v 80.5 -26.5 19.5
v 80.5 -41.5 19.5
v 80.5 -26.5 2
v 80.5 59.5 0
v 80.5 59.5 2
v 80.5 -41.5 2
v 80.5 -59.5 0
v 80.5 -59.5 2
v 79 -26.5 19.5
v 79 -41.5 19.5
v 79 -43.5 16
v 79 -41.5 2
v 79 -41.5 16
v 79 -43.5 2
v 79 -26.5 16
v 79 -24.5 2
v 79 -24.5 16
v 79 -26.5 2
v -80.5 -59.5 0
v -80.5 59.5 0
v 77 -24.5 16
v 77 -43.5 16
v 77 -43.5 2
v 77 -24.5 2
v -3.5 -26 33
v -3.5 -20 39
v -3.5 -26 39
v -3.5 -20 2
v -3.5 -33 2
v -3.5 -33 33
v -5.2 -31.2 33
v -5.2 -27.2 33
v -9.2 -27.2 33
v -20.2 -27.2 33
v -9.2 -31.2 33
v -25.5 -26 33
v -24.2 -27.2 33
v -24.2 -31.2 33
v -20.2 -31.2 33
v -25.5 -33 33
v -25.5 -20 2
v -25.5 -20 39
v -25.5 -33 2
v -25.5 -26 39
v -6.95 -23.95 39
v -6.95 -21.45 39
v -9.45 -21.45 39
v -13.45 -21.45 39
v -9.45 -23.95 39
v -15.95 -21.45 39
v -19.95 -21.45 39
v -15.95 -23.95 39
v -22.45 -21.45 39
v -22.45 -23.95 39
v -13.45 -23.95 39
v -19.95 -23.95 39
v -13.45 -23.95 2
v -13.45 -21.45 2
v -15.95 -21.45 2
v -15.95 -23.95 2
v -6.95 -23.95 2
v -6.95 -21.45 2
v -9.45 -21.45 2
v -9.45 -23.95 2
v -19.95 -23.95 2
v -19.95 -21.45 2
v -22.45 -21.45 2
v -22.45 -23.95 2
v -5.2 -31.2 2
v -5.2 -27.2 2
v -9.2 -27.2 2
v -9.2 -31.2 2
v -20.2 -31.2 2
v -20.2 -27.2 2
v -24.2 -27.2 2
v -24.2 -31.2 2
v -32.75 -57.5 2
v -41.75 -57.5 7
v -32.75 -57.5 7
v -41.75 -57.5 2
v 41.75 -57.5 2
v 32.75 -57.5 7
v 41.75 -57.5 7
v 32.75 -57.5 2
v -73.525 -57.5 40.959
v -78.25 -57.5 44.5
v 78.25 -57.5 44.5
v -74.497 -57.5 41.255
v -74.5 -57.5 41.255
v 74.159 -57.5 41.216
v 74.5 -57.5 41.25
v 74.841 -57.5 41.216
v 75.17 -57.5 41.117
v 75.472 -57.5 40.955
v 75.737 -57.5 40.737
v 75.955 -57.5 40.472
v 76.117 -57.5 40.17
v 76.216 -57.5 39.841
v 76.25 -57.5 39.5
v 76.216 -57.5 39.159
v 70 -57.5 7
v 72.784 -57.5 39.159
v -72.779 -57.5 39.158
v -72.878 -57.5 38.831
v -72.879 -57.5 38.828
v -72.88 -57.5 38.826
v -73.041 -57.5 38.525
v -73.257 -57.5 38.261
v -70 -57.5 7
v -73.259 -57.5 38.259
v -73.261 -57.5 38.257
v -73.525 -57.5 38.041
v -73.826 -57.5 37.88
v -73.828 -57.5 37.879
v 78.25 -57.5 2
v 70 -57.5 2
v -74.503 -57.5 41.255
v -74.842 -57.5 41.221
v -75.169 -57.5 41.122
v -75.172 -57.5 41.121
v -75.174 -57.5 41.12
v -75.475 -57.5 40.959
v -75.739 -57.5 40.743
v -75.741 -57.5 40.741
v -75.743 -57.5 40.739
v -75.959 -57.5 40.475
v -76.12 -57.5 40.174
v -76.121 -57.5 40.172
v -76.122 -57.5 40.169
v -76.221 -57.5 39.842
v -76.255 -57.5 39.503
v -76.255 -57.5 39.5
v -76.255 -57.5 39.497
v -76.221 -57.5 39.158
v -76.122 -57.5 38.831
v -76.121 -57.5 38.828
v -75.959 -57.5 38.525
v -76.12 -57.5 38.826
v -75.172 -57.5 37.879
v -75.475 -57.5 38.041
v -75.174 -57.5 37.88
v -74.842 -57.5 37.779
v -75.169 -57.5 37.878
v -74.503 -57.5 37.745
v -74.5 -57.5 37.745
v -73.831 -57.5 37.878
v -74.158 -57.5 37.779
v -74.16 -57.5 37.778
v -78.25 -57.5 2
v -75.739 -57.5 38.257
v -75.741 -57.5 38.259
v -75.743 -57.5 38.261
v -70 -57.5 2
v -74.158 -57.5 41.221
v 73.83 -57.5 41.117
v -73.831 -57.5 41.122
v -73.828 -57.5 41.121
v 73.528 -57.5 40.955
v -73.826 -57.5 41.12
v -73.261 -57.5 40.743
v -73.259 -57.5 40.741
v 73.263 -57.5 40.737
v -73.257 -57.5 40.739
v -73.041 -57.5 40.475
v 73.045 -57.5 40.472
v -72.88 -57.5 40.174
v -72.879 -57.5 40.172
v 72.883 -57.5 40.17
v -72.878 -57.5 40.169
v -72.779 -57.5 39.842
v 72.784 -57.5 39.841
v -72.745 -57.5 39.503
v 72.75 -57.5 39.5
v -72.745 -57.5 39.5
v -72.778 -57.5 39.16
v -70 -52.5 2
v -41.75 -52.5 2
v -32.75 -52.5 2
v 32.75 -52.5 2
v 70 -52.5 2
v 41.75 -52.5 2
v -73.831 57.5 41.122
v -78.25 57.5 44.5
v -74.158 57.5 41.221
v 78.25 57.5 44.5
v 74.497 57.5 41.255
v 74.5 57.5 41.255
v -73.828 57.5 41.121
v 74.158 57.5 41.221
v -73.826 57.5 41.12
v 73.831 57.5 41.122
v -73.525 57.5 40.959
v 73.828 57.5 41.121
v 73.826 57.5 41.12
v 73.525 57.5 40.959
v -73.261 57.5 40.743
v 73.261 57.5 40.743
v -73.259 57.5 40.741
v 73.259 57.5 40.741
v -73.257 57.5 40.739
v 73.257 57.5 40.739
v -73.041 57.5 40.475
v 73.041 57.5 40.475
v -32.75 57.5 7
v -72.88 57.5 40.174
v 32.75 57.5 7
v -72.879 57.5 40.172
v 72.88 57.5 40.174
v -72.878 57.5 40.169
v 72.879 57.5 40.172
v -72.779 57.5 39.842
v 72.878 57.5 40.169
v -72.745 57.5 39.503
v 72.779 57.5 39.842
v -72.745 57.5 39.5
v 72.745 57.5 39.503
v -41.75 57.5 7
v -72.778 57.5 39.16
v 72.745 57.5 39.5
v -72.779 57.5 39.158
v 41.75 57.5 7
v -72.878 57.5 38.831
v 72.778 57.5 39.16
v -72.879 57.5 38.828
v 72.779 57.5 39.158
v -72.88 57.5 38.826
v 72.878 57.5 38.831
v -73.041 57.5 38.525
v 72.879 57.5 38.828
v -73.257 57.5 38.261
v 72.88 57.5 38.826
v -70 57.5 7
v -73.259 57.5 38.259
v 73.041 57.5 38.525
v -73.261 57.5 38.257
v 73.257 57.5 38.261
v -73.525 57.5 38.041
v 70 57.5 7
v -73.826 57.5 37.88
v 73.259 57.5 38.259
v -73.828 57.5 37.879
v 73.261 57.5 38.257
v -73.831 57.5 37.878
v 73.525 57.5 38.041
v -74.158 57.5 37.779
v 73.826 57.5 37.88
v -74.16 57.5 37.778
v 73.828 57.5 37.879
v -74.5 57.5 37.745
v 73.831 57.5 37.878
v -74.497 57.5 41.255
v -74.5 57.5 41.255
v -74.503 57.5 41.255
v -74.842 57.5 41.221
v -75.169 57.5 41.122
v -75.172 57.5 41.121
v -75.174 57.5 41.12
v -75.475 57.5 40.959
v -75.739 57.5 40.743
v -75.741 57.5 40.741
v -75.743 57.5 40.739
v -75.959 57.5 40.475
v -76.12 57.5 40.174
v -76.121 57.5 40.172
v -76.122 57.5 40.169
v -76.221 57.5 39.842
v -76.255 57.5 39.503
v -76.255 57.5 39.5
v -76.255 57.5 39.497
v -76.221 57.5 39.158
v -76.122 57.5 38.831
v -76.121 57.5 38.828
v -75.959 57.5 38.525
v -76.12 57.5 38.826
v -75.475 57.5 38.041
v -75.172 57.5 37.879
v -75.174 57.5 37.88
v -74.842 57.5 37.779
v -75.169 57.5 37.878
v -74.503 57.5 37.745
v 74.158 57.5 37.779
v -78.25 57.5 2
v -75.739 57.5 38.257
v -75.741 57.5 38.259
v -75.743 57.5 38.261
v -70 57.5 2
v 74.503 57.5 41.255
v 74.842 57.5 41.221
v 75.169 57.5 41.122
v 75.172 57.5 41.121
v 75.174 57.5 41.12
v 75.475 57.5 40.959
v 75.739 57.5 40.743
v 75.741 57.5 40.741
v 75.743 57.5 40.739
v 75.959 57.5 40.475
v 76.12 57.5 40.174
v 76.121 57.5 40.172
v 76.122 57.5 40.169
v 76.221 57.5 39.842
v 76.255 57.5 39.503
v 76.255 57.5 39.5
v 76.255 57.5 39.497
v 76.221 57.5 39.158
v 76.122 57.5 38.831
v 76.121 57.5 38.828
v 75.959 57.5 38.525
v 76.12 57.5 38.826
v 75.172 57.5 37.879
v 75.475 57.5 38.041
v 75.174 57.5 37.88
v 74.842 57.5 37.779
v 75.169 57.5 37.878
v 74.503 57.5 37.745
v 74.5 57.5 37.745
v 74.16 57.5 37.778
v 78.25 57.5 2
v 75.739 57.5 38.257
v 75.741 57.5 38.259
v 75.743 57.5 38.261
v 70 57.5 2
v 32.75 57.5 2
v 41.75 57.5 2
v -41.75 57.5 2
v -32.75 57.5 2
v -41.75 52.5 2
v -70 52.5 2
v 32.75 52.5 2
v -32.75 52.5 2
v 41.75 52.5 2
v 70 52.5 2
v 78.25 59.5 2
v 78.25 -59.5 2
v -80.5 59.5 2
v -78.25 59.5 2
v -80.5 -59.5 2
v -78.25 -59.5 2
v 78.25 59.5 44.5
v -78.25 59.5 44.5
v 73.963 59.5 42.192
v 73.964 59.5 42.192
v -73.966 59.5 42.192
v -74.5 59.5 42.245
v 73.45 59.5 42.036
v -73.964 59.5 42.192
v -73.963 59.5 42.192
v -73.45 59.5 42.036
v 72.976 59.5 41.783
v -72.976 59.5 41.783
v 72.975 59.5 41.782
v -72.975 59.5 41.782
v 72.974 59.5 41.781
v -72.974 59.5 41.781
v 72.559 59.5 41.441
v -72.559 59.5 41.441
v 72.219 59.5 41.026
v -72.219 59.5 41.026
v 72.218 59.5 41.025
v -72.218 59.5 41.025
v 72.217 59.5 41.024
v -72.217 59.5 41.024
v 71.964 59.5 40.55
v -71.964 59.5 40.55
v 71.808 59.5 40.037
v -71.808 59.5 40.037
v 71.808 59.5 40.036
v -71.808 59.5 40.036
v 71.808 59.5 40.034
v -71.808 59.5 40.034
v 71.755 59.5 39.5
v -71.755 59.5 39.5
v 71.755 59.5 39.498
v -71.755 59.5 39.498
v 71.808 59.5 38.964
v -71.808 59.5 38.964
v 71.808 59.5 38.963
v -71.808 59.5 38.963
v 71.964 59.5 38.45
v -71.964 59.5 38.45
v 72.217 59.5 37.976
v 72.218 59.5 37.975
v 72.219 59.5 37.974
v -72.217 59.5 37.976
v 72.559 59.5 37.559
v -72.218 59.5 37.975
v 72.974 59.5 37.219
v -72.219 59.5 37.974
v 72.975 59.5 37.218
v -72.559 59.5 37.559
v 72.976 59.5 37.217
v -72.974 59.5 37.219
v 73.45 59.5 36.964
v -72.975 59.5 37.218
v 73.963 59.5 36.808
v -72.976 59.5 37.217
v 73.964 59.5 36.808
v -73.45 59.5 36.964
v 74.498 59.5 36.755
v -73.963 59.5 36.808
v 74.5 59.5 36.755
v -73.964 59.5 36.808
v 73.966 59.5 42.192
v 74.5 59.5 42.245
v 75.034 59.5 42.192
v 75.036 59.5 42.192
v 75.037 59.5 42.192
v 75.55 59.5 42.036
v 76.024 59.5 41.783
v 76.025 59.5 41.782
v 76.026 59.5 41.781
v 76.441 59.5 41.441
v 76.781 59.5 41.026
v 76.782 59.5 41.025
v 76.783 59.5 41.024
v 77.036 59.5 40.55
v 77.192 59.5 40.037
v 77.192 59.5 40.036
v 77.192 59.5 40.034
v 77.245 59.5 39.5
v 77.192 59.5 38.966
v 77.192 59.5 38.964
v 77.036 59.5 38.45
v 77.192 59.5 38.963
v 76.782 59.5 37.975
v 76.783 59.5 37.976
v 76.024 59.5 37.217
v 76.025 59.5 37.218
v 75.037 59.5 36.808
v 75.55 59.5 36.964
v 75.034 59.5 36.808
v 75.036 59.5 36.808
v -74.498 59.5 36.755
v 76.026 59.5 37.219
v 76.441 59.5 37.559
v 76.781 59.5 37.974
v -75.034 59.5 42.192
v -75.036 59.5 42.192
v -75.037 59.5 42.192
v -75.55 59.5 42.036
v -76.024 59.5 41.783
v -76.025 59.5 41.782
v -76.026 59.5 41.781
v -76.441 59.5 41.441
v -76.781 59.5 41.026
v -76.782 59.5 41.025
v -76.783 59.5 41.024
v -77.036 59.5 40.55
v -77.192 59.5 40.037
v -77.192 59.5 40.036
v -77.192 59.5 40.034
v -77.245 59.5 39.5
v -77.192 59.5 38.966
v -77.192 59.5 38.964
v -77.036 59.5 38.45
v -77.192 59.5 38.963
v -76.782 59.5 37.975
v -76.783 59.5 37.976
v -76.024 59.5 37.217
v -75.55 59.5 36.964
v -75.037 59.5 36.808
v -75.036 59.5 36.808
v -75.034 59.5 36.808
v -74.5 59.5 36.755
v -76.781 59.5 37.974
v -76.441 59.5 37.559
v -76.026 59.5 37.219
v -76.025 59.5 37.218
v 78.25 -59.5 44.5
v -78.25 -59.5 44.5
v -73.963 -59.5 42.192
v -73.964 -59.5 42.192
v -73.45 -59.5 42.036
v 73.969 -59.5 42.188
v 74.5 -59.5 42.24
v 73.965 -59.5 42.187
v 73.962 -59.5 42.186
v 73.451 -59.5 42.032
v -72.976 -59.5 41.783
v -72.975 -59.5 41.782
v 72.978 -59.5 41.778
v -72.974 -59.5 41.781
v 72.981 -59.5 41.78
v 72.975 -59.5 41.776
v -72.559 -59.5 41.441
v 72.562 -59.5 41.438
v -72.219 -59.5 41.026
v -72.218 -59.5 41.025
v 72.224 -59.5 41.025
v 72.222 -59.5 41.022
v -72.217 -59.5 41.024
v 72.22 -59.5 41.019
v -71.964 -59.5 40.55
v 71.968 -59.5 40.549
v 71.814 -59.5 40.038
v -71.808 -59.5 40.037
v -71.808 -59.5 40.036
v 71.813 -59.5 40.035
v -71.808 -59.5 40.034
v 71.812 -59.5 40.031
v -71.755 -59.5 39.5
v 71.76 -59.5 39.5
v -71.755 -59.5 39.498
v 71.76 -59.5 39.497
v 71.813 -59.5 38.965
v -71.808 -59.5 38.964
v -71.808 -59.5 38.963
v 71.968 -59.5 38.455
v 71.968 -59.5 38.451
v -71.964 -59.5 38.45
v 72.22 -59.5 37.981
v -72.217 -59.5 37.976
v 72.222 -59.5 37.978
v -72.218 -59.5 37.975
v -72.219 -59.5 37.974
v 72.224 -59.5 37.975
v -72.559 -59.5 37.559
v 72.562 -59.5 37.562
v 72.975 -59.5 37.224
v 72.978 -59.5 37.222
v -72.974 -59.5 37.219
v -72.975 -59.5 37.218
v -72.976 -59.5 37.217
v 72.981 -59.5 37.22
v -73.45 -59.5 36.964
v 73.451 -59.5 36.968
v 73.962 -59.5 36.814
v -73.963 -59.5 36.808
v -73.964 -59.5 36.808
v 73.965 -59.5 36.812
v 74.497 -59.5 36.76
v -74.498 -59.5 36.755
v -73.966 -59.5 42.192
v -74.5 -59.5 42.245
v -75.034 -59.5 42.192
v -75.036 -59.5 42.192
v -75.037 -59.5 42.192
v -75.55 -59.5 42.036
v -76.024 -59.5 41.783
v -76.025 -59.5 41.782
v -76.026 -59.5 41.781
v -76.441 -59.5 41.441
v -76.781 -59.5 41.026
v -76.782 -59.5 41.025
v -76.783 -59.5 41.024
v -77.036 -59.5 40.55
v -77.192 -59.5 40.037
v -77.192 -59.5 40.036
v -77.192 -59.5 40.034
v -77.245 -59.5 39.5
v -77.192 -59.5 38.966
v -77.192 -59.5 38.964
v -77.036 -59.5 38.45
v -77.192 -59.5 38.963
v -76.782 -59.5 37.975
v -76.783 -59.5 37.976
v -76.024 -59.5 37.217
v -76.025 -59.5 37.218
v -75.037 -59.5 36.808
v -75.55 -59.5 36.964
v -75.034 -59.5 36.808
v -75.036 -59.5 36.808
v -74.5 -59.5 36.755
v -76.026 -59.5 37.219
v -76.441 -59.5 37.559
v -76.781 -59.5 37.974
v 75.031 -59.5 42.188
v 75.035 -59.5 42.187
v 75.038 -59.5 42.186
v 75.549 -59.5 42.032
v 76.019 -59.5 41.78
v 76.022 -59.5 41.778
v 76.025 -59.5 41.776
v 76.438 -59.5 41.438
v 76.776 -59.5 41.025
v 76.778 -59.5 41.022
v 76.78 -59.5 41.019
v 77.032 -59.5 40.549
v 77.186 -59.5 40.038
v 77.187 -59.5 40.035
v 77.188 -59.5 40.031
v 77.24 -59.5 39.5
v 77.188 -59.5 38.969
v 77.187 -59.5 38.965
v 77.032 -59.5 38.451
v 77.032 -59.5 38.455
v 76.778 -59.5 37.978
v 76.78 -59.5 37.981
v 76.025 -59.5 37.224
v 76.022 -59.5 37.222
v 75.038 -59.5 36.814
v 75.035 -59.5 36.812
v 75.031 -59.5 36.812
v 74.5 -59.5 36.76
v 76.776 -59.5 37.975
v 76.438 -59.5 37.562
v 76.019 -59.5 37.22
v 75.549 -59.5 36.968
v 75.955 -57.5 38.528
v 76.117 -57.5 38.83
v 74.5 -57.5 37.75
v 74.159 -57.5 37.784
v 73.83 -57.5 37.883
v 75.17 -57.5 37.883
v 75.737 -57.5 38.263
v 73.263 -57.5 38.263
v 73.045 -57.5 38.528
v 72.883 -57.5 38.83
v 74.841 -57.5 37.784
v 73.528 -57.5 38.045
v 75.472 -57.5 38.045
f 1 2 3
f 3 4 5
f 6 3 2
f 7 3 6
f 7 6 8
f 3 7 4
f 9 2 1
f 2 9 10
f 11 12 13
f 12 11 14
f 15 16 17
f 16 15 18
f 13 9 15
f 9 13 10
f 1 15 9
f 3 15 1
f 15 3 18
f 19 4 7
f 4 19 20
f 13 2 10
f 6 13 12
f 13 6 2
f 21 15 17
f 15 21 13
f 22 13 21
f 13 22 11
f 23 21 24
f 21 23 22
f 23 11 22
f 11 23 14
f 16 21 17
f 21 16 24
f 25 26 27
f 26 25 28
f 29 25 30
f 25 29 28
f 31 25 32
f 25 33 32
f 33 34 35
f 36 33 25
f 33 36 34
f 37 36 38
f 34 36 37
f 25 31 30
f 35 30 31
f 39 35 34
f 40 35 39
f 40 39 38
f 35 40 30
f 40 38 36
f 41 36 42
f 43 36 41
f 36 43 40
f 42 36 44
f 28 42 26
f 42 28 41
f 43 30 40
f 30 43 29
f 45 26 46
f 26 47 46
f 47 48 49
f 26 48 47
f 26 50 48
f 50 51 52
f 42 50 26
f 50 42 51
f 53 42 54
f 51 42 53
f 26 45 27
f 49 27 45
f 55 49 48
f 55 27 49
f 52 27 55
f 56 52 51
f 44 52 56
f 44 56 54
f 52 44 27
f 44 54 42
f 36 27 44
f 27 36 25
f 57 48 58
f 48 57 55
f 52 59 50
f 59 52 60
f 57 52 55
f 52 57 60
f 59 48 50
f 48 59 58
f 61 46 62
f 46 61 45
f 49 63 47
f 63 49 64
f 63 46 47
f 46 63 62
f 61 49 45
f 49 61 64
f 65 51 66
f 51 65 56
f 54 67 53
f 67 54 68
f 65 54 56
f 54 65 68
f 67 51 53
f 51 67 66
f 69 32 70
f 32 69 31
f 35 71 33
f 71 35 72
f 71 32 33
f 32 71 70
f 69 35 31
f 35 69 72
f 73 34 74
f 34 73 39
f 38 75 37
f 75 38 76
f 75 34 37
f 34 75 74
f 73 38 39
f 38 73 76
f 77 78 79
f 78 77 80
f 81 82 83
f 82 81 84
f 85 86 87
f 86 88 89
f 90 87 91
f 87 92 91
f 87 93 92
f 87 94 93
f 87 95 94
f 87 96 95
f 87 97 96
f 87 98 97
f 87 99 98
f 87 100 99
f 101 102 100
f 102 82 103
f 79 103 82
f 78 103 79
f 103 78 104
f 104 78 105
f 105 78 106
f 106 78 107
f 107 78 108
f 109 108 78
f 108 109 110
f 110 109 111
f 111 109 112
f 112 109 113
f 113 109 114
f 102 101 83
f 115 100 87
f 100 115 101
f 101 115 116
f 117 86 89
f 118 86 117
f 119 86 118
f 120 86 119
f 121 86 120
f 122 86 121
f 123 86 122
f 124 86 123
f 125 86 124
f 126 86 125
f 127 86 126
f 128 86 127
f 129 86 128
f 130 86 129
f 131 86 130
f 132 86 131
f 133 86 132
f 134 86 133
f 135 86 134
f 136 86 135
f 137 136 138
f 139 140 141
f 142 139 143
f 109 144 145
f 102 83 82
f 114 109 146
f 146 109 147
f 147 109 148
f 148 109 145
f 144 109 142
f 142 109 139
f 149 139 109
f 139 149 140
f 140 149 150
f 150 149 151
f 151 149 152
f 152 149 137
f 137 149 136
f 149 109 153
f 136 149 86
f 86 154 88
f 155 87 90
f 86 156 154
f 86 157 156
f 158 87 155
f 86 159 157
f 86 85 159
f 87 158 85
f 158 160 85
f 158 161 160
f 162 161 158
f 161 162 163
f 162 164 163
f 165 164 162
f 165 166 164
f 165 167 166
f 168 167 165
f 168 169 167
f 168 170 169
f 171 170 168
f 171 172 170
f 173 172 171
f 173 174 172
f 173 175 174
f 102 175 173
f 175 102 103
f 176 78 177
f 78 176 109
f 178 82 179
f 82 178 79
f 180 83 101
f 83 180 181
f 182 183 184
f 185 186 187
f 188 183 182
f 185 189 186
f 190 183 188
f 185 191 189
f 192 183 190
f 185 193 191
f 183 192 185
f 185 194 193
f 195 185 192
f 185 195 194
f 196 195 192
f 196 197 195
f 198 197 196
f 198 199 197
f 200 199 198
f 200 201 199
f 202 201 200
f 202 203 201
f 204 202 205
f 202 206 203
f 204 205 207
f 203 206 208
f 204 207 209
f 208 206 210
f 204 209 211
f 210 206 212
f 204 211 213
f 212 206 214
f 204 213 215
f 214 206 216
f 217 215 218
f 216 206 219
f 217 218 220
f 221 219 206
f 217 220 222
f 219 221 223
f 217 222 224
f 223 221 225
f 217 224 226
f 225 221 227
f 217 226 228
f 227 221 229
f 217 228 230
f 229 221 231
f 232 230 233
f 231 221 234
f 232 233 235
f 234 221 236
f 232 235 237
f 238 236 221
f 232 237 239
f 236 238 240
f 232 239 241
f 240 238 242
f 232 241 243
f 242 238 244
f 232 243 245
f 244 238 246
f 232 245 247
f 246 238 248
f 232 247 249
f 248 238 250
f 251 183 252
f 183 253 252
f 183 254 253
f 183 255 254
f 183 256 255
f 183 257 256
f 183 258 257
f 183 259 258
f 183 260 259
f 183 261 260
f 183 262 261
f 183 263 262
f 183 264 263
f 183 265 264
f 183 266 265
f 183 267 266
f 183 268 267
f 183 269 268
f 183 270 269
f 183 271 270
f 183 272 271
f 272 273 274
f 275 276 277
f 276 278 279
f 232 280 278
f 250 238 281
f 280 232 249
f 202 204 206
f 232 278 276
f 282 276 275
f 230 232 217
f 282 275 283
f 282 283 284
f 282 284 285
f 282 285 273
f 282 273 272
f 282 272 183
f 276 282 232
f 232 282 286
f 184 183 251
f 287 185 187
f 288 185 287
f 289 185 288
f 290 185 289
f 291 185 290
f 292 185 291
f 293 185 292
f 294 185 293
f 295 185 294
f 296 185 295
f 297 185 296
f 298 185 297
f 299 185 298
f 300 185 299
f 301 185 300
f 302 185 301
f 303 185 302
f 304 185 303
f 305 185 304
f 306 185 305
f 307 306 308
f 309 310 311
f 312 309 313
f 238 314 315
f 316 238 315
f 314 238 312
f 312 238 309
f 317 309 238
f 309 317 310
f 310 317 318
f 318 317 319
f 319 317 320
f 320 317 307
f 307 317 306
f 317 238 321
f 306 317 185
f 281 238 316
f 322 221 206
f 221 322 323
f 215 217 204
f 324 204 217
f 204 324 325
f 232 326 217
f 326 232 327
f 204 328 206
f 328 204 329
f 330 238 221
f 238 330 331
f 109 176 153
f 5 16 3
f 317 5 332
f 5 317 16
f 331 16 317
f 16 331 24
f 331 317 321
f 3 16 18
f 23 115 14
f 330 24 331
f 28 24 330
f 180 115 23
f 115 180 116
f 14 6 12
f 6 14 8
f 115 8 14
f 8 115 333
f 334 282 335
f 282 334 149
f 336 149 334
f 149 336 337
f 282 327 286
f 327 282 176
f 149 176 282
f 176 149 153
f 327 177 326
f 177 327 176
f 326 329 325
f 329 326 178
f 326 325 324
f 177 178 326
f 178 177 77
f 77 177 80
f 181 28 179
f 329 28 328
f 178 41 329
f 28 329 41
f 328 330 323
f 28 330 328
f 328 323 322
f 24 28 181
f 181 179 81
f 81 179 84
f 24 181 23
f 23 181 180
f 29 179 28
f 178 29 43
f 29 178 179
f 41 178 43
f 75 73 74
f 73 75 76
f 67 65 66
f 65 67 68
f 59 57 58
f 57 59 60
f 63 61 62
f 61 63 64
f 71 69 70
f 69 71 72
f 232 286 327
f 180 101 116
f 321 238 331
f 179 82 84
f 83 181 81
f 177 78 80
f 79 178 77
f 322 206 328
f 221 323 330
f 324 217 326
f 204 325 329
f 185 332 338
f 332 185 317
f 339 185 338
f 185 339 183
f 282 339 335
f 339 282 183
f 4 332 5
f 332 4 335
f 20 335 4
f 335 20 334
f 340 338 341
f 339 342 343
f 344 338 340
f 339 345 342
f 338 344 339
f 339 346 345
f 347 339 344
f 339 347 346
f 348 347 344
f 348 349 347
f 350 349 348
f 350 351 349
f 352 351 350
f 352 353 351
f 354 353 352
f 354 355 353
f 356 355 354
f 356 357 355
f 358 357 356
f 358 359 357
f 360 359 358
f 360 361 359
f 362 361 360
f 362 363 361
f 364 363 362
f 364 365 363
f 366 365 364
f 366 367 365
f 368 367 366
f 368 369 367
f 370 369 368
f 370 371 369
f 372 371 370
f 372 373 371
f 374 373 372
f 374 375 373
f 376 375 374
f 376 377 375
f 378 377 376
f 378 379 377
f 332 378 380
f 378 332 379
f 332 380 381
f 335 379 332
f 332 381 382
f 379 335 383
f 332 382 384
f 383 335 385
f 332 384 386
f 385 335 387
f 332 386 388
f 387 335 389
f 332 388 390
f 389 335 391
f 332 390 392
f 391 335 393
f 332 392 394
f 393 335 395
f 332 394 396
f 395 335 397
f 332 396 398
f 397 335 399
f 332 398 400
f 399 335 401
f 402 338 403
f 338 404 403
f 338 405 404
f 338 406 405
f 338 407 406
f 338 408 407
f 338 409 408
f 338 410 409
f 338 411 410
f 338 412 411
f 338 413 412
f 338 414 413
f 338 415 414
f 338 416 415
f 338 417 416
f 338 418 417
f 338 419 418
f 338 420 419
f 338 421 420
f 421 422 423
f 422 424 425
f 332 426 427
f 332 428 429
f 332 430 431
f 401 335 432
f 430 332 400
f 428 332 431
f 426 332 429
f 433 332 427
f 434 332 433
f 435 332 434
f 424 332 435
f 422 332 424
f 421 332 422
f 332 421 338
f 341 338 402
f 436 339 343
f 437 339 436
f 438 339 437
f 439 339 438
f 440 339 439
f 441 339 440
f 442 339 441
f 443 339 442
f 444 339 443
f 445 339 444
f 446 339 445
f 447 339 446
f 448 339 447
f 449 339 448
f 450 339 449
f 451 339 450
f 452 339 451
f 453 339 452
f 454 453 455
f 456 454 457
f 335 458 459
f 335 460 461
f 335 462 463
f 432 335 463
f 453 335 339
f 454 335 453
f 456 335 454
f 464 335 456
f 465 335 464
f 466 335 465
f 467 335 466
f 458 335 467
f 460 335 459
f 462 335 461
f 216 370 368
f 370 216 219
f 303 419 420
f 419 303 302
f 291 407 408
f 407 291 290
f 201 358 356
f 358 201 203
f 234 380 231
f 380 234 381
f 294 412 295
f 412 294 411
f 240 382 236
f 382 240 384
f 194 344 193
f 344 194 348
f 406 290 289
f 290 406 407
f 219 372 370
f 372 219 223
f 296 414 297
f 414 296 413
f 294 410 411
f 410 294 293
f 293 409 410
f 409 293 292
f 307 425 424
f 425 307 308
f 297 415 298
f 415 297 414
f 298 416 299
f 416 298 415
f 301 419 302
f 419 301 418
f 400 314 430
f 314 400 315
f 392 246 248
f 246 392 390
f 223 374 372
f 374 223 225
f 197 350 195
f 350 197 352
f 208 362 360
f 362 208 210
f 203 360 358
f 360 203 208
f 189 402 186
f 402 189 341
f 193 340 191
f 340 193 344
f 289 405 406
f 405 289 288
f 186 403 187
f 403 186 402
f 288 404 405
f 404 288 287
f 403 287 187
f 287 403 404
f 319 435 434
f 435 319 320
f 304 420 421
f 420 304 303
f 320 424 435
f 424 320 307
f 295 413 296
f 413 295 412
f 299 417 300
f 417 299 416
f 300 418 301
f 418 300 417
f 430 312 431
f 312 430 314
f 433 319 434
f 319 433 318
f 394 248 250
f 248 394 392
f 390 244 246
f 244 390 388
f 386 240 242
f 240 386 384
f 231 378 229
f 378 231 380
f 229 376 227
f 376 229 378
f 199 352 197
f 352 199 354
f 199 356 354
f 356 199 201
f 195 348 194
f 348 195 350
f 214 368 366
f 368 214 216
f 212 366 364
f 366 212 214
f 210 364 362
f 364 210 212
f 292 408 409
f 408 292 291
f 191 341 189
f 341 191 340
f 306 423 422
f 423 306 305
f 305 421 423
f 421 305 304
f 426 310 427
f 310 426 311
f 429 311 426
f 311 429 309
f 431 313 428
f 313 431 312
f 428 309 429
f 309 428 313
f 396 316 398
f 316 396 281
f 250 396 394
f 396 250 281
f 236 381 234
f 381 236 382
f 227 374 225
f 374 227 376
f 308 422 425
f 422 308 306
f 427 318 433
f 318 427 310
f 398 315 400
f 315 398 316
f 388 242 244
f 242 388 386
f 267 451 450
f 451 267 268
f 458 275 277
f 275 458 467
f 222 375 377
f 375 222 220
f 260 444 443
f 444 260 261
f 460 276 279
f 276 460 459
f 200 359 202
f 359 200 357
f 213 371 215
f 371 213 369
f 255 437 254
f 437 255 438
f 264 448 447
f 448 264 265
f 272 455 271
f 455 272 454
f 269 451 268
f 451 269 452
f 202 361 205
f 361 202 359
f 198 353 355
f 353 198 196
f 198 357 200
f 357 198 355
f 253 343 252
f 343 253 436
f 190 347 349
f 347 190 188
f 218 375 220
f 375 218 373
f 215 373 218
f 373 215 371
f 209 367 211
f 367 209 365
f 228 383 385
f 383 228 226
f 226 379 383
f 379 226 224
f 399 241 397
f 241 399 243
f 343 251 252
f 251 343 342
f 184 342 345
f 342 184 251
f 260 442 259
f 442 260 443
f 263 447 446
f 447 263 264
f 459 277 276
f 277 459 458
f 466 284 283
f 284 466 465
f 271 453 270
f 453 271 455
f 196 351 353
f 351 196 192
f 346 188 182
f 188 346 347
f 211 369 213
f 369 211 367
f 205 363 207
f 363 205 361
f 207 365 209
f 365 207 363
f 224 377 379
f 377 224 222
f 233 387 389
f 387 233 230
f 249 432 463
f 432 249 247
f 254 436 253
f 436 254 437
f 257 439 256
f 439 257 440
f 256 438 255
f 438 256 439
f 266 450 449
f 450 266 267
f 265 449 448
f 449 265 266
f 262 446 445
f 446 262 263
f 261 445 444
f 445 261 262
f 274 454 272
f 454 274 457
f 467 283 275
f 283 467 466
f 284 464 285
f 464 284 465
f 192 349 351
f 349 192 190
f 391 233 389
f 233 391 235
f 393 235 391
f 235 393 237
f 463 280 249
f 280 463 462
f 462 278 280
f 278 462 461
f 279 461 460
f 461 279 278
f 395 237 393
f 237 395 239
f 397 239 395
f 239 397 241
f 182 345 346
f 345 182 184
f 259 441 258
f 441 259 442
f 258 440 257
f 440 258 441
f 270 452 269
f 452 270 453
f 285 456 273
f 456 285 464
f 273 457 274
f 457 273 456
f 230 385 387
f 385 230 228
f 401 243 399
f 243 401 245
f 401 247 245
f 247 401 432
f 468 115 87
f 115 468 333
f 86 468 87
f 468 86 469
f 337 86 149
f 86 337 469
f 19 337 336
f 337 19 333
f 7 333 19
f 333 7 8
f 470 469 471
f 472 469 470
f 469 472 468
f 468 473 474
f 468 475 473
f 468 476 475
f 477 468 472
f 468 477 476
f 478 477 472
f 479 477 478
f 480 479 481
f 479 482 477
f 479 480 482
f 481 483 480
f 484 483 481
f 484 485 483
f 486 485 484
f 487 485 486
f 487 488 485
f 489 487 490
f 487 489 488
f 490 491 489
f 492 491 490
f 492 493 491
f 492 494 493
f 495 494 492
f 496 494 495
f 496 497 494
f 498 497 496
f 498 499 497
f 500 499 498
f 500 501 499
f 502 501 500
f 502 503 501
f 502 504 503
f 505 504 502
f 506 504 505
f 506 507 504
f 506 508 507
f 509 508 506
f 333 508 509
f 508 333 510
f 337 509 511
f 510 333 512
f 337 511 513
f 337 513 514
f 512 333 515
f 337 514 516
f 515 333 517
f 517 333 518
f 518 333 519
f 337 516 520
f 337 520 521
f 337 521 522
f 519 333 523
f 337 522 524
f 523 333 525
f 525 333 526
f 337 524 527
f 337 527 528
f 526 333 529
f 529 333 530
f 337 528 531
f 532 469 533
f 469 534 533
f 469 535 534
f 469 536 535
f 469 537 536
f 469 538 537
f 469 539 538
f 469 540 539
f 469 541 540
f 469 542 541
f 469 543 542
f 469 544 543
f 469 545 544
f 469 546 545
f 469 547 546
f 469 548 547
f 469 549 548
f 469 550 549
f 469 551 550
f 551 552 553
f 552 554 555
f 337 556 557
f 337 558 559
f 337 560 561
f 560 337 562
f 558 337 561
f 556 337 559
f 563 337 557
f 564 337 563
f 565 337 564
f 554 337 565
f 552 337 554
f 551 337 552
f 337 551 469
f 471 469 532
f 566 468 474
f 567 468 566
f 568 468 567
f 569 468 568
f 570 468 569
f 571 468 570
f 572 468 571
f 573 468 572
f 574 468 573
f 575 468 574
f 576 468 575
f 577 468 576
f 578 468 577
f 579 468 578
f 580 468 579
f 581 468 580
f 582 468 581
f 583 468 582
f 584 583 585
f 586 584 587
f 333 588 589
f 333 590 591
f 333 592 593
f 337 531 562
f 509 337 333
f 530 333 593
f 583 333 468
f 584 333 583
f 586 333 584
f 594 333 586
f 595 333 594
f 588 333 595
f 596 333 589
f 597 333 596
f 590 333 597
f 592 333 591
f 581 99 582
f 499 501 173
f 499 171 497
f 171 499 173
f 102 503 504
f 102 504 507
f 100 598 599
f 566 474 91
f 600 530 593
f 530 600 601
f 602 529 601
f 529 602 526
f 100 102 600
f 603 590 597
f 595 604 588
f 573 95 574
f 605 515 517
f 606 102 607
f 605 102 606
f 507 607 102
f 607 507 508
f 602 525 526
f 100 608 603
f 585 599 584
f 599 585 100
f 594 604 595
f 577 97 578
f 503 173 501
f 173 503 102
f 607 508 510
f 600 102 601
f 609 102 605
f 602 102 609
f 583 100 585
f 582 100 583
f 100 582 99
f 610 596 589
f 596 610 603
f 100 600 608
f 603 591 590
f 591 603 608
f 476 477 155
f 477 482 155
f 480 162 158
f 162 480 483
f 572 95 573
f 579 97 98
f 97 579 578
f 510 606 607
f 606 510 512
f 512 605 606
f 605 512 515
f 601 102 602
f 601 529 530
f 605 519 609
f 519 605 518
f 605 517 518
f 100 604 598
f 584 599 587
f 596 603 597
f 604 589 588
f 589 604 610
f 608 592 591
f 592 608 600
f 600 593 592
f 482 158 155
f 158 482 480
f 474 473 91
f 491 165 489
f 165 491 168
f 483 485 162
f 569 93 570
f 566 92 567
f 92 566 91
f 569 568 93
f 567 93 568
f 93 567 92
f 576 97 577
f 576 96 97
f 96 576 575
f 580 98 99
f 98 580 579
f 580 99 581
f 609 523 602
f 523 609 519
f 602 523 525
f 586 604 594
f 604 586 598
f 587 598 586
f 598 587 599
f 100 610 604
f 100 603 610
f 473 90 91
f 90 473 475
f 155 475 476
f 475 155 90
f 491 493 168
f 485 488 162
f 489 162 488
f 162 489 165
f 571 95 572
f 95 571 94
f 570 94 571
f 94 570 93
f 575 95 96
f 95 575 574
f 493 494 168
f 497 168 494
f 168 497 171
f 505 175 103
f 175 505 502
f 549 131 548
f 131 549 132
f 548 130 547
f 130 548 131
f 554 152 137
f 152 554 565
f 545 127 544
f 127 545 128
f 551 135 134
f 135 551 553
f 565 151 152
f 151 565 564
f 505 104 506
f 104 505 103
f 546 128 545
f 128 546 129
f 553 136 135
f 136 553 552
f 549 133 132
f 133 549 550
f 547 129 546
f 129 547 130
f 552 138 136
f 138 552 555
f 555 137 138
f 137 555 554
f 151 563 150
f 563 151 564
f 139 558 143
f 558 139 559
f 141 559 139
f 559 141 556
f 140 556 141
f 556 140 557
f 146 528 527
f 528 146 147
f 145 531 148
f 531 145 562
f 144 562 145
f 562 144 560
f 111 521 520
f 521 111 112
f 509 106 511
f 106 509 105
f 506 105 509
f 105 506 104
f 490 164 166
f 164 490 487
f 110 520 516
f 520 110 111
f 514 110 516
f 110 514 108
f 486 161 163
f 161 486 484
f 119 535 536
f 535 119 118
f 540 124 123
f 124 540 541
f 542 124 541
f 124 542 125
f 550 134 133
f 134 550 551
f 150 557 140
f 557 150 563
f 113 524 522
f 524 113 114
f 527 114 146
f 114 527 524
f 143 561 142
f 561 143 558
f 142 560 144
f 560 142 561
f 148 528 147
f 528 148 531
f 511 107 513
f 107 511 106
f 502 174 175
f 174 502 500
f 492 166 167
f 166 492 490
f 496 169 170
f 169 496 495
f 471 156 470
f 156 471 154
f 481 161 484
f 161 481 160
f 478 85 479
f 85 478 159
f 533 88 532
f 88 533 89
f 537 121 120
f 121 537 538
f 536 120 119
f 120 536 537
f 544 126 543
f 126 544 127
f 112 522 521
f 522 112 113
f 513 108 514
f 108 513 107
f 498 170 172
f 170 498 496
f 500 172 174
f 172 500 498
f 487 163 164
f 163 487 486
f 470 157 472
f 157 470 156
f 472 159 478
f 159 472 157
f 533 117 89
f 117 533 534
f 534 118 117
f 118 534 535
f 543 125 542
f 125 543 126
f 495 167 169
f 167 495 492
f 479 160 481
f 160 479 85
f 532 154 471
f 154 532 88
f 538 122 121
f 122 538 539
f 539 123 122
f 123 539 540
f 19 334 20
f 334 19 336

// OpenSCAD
L=157;
W=115;
THICK=2;

bW=85;
bL=135;

// "bottom" (top) part
scale([-1,1,1])
difference() {
    union() {
    translate([0,0,THICK/2])
    cube([L+2*THICK,W+2*THICK,THICK], center=true);
    }
    
    button_holes();
    //comm_supports_minus();
}

scale([-1,1,1])
usb_wall();

scale([-1,1,1])
button_towers();

module usb_wall() {
    translate([-L/2-THICK,-34,0])
    translate([0,-15/2,0])
    cube([1.5,15,19.5]);
    
    translate([-L/2-THICK+1.5,-34,0])
    translate([0,-19/2,0])
    cube([THICK,19,16]);
}

difference() {
union() {
    translate([0,-W/2,THICK])
    triangle();
    translate([0,W/2,THICK])
    scale([1,-1,1])
    triangle();
}
translate([0,0,THICK])
comm_supports_footprint();
}

// side walls

scale([-1,1,1])
translate([0,W/2,0])
difference() {
    translate([-(L-0.5)/2,0,0])
    cube([(L-0.5),THICK,44.5]);
    translate([-L/2+4,THICK+.01,44.5-5])
    rotate([90,0,0])
    cylinder(d1=5.5,d2=3.5,h=THICK+.02,$fn=32);
    translate([L/2-4,THICK+.01,44.5-5])
    rotate([90,0,0])
    cylinder(d1=5.5,d2=3.5,h=THICK+.02,$fn=32);
}

scale([-1,1,1])
translate([0,-W/2-THICK,0])
difference() {
    translate([-(L-0.5)/2,0,0])
    cube([(L-0.5),THICK,44.5]);
    translate([-L/2+4,THICK+.0,44.5-5])
    rotate([90,0,0])
    cylinder(d1=3.5,d2=5.5,h=THICK+.02,$fn=32);
    translate([L/2-4,THICK+.01,44.5-5])
    rotate([90,0,0])
    cylinder(d1=3.5,d2=5.5,h=THICK+.02,$fn=32);
}


module button_holes() {  

        translate([79.7-bL/2-5,13.3-bW/2,0])
        translate([-4/2,-4/2])
        cube([4,4,39]);
        
        
        translate([79.7-bL/2-5+15,13.3-bW/2,0])
        translate([-4/2,-4/2])
        cube([4,4,39]);
        
        
        translate([77.7-bL/2+19/2-5,17.3+5/2-bW/2,0]) {
            translate([-2.5/2,-2.5/2,0])
            cube([2.5,2.5,39]);
            translate([-2.5/2-6.5,-2.5/2,0])
            cube([2.5,2.5,39]);
            translate([-2.5/2+6.5,-2.5/2,0])
            cube([2.5,2.5,39]);
        }   
}

module button_towers() {  
    difference() {
        translate([75.5-bL/2-5+0.5,10-bW/2-1+0.5,0]){
            cube([22,13,33]);
            translate([0,7,0])
            cube([22,6,39]);
        }
        
        button_holes(); 
    }
}

//comm_supports(); 

module comm_supports_footprint() {
translate([-L/2+4,-W/2+4,0])
translate([-4.5,-4.5])
cube([9,9,50]);
translate([-L/2+4,W/2-4,0])
translate([-4.5,-4.5])
cube([9,9,50]);
translate([L/2-4,-W/2+4,0])
translate([-4.5,-4.5])
cube([9,9,50]);
translate([L/2-4,W/2-4,0])
translate([-4.5,-4.5])
cube([9,9,50]);
translate([L/4-2,-W/2+4,0])
translate([-4.5,-4.5])
cube([9,9,50]);
translate([-L/4+2,-W/2+4,0])
translate([-4.5,-4.5])
cube([9,9,50]);
translate([L/4-2,W/2-4,0])
translate([-4.5,-4.5])
cube([9,9,50]);
translate([-L/4+2,W/2-4,0])
translate([-4.5,-4.5])
cube([9,9,50]);
}

module comm_supports() {
translate([-L/2+4,-W/2+4,0])
support();
translate([-L/2+4,W/2-4,0])
support();
translate([L/2-4,-W/2+4,0])
support();
translate([L/2-4,W/2-4,0])
support();
translate([L/4-2,-W/2+4,0])
support();
translate([-L/4+2,-W/2+4,0])
support();
translate([L/4-2,W/2-4,0])
support();
translate([-L/4+2,W/2-4,0])
support();
}

module comm_supports_minus() {
translate([-L/2+4,-W/2+4,0])
cylinder(d=5,h=THICK, $fn=16);
translate([-L/2+4,W/2-4,0])
cylinder(d=5,h=THICK, $fn=16);
translate([L/2-4,-W/2+4,0])
cylinder(d=5,h=THICK, $fn=16);
translate([L/2-4,W/2-4,0])
cylinder(d=5,h=THICK, $fn=16);
translate([L/4-2,-W/2+4,0])
cylinder(d=5,h=THICK, $fn=16);
translate([-L/4+2,-W/2+4,0])
cylinder(d=5,h=THICK, $fn=16);
translate([L/4-2,W/2-4,0])
cylinder(d=5,h=THICK, $fn=16);
translate([-L/4+2,W/2-4,0])
cylinder(d=5,h=THICK, $fn=16);
}

module triangle() {
rotate([0,270,0])
linear_extrude(height = L, center = true, convexity = 10, twist = 0)
polygon(points=[[0,0],[5,0],[0,5]]);
}

module support() {
    difference() {
        translate([-4,-4])
        cube([8,8,11.8-1.5-6]);
        // 1.5 for comm tray, 6mm for standoff with thread
        cylinder(d=5.5,h=40,$fn=32);
    }
    translate([0,0,11.8-THICK-1.5-6])
    difference() {
        cylinder(d=6, h=THICK, $fn=16);
        cylinder(d=3, h=THICK, $fn=16);
    }
}
